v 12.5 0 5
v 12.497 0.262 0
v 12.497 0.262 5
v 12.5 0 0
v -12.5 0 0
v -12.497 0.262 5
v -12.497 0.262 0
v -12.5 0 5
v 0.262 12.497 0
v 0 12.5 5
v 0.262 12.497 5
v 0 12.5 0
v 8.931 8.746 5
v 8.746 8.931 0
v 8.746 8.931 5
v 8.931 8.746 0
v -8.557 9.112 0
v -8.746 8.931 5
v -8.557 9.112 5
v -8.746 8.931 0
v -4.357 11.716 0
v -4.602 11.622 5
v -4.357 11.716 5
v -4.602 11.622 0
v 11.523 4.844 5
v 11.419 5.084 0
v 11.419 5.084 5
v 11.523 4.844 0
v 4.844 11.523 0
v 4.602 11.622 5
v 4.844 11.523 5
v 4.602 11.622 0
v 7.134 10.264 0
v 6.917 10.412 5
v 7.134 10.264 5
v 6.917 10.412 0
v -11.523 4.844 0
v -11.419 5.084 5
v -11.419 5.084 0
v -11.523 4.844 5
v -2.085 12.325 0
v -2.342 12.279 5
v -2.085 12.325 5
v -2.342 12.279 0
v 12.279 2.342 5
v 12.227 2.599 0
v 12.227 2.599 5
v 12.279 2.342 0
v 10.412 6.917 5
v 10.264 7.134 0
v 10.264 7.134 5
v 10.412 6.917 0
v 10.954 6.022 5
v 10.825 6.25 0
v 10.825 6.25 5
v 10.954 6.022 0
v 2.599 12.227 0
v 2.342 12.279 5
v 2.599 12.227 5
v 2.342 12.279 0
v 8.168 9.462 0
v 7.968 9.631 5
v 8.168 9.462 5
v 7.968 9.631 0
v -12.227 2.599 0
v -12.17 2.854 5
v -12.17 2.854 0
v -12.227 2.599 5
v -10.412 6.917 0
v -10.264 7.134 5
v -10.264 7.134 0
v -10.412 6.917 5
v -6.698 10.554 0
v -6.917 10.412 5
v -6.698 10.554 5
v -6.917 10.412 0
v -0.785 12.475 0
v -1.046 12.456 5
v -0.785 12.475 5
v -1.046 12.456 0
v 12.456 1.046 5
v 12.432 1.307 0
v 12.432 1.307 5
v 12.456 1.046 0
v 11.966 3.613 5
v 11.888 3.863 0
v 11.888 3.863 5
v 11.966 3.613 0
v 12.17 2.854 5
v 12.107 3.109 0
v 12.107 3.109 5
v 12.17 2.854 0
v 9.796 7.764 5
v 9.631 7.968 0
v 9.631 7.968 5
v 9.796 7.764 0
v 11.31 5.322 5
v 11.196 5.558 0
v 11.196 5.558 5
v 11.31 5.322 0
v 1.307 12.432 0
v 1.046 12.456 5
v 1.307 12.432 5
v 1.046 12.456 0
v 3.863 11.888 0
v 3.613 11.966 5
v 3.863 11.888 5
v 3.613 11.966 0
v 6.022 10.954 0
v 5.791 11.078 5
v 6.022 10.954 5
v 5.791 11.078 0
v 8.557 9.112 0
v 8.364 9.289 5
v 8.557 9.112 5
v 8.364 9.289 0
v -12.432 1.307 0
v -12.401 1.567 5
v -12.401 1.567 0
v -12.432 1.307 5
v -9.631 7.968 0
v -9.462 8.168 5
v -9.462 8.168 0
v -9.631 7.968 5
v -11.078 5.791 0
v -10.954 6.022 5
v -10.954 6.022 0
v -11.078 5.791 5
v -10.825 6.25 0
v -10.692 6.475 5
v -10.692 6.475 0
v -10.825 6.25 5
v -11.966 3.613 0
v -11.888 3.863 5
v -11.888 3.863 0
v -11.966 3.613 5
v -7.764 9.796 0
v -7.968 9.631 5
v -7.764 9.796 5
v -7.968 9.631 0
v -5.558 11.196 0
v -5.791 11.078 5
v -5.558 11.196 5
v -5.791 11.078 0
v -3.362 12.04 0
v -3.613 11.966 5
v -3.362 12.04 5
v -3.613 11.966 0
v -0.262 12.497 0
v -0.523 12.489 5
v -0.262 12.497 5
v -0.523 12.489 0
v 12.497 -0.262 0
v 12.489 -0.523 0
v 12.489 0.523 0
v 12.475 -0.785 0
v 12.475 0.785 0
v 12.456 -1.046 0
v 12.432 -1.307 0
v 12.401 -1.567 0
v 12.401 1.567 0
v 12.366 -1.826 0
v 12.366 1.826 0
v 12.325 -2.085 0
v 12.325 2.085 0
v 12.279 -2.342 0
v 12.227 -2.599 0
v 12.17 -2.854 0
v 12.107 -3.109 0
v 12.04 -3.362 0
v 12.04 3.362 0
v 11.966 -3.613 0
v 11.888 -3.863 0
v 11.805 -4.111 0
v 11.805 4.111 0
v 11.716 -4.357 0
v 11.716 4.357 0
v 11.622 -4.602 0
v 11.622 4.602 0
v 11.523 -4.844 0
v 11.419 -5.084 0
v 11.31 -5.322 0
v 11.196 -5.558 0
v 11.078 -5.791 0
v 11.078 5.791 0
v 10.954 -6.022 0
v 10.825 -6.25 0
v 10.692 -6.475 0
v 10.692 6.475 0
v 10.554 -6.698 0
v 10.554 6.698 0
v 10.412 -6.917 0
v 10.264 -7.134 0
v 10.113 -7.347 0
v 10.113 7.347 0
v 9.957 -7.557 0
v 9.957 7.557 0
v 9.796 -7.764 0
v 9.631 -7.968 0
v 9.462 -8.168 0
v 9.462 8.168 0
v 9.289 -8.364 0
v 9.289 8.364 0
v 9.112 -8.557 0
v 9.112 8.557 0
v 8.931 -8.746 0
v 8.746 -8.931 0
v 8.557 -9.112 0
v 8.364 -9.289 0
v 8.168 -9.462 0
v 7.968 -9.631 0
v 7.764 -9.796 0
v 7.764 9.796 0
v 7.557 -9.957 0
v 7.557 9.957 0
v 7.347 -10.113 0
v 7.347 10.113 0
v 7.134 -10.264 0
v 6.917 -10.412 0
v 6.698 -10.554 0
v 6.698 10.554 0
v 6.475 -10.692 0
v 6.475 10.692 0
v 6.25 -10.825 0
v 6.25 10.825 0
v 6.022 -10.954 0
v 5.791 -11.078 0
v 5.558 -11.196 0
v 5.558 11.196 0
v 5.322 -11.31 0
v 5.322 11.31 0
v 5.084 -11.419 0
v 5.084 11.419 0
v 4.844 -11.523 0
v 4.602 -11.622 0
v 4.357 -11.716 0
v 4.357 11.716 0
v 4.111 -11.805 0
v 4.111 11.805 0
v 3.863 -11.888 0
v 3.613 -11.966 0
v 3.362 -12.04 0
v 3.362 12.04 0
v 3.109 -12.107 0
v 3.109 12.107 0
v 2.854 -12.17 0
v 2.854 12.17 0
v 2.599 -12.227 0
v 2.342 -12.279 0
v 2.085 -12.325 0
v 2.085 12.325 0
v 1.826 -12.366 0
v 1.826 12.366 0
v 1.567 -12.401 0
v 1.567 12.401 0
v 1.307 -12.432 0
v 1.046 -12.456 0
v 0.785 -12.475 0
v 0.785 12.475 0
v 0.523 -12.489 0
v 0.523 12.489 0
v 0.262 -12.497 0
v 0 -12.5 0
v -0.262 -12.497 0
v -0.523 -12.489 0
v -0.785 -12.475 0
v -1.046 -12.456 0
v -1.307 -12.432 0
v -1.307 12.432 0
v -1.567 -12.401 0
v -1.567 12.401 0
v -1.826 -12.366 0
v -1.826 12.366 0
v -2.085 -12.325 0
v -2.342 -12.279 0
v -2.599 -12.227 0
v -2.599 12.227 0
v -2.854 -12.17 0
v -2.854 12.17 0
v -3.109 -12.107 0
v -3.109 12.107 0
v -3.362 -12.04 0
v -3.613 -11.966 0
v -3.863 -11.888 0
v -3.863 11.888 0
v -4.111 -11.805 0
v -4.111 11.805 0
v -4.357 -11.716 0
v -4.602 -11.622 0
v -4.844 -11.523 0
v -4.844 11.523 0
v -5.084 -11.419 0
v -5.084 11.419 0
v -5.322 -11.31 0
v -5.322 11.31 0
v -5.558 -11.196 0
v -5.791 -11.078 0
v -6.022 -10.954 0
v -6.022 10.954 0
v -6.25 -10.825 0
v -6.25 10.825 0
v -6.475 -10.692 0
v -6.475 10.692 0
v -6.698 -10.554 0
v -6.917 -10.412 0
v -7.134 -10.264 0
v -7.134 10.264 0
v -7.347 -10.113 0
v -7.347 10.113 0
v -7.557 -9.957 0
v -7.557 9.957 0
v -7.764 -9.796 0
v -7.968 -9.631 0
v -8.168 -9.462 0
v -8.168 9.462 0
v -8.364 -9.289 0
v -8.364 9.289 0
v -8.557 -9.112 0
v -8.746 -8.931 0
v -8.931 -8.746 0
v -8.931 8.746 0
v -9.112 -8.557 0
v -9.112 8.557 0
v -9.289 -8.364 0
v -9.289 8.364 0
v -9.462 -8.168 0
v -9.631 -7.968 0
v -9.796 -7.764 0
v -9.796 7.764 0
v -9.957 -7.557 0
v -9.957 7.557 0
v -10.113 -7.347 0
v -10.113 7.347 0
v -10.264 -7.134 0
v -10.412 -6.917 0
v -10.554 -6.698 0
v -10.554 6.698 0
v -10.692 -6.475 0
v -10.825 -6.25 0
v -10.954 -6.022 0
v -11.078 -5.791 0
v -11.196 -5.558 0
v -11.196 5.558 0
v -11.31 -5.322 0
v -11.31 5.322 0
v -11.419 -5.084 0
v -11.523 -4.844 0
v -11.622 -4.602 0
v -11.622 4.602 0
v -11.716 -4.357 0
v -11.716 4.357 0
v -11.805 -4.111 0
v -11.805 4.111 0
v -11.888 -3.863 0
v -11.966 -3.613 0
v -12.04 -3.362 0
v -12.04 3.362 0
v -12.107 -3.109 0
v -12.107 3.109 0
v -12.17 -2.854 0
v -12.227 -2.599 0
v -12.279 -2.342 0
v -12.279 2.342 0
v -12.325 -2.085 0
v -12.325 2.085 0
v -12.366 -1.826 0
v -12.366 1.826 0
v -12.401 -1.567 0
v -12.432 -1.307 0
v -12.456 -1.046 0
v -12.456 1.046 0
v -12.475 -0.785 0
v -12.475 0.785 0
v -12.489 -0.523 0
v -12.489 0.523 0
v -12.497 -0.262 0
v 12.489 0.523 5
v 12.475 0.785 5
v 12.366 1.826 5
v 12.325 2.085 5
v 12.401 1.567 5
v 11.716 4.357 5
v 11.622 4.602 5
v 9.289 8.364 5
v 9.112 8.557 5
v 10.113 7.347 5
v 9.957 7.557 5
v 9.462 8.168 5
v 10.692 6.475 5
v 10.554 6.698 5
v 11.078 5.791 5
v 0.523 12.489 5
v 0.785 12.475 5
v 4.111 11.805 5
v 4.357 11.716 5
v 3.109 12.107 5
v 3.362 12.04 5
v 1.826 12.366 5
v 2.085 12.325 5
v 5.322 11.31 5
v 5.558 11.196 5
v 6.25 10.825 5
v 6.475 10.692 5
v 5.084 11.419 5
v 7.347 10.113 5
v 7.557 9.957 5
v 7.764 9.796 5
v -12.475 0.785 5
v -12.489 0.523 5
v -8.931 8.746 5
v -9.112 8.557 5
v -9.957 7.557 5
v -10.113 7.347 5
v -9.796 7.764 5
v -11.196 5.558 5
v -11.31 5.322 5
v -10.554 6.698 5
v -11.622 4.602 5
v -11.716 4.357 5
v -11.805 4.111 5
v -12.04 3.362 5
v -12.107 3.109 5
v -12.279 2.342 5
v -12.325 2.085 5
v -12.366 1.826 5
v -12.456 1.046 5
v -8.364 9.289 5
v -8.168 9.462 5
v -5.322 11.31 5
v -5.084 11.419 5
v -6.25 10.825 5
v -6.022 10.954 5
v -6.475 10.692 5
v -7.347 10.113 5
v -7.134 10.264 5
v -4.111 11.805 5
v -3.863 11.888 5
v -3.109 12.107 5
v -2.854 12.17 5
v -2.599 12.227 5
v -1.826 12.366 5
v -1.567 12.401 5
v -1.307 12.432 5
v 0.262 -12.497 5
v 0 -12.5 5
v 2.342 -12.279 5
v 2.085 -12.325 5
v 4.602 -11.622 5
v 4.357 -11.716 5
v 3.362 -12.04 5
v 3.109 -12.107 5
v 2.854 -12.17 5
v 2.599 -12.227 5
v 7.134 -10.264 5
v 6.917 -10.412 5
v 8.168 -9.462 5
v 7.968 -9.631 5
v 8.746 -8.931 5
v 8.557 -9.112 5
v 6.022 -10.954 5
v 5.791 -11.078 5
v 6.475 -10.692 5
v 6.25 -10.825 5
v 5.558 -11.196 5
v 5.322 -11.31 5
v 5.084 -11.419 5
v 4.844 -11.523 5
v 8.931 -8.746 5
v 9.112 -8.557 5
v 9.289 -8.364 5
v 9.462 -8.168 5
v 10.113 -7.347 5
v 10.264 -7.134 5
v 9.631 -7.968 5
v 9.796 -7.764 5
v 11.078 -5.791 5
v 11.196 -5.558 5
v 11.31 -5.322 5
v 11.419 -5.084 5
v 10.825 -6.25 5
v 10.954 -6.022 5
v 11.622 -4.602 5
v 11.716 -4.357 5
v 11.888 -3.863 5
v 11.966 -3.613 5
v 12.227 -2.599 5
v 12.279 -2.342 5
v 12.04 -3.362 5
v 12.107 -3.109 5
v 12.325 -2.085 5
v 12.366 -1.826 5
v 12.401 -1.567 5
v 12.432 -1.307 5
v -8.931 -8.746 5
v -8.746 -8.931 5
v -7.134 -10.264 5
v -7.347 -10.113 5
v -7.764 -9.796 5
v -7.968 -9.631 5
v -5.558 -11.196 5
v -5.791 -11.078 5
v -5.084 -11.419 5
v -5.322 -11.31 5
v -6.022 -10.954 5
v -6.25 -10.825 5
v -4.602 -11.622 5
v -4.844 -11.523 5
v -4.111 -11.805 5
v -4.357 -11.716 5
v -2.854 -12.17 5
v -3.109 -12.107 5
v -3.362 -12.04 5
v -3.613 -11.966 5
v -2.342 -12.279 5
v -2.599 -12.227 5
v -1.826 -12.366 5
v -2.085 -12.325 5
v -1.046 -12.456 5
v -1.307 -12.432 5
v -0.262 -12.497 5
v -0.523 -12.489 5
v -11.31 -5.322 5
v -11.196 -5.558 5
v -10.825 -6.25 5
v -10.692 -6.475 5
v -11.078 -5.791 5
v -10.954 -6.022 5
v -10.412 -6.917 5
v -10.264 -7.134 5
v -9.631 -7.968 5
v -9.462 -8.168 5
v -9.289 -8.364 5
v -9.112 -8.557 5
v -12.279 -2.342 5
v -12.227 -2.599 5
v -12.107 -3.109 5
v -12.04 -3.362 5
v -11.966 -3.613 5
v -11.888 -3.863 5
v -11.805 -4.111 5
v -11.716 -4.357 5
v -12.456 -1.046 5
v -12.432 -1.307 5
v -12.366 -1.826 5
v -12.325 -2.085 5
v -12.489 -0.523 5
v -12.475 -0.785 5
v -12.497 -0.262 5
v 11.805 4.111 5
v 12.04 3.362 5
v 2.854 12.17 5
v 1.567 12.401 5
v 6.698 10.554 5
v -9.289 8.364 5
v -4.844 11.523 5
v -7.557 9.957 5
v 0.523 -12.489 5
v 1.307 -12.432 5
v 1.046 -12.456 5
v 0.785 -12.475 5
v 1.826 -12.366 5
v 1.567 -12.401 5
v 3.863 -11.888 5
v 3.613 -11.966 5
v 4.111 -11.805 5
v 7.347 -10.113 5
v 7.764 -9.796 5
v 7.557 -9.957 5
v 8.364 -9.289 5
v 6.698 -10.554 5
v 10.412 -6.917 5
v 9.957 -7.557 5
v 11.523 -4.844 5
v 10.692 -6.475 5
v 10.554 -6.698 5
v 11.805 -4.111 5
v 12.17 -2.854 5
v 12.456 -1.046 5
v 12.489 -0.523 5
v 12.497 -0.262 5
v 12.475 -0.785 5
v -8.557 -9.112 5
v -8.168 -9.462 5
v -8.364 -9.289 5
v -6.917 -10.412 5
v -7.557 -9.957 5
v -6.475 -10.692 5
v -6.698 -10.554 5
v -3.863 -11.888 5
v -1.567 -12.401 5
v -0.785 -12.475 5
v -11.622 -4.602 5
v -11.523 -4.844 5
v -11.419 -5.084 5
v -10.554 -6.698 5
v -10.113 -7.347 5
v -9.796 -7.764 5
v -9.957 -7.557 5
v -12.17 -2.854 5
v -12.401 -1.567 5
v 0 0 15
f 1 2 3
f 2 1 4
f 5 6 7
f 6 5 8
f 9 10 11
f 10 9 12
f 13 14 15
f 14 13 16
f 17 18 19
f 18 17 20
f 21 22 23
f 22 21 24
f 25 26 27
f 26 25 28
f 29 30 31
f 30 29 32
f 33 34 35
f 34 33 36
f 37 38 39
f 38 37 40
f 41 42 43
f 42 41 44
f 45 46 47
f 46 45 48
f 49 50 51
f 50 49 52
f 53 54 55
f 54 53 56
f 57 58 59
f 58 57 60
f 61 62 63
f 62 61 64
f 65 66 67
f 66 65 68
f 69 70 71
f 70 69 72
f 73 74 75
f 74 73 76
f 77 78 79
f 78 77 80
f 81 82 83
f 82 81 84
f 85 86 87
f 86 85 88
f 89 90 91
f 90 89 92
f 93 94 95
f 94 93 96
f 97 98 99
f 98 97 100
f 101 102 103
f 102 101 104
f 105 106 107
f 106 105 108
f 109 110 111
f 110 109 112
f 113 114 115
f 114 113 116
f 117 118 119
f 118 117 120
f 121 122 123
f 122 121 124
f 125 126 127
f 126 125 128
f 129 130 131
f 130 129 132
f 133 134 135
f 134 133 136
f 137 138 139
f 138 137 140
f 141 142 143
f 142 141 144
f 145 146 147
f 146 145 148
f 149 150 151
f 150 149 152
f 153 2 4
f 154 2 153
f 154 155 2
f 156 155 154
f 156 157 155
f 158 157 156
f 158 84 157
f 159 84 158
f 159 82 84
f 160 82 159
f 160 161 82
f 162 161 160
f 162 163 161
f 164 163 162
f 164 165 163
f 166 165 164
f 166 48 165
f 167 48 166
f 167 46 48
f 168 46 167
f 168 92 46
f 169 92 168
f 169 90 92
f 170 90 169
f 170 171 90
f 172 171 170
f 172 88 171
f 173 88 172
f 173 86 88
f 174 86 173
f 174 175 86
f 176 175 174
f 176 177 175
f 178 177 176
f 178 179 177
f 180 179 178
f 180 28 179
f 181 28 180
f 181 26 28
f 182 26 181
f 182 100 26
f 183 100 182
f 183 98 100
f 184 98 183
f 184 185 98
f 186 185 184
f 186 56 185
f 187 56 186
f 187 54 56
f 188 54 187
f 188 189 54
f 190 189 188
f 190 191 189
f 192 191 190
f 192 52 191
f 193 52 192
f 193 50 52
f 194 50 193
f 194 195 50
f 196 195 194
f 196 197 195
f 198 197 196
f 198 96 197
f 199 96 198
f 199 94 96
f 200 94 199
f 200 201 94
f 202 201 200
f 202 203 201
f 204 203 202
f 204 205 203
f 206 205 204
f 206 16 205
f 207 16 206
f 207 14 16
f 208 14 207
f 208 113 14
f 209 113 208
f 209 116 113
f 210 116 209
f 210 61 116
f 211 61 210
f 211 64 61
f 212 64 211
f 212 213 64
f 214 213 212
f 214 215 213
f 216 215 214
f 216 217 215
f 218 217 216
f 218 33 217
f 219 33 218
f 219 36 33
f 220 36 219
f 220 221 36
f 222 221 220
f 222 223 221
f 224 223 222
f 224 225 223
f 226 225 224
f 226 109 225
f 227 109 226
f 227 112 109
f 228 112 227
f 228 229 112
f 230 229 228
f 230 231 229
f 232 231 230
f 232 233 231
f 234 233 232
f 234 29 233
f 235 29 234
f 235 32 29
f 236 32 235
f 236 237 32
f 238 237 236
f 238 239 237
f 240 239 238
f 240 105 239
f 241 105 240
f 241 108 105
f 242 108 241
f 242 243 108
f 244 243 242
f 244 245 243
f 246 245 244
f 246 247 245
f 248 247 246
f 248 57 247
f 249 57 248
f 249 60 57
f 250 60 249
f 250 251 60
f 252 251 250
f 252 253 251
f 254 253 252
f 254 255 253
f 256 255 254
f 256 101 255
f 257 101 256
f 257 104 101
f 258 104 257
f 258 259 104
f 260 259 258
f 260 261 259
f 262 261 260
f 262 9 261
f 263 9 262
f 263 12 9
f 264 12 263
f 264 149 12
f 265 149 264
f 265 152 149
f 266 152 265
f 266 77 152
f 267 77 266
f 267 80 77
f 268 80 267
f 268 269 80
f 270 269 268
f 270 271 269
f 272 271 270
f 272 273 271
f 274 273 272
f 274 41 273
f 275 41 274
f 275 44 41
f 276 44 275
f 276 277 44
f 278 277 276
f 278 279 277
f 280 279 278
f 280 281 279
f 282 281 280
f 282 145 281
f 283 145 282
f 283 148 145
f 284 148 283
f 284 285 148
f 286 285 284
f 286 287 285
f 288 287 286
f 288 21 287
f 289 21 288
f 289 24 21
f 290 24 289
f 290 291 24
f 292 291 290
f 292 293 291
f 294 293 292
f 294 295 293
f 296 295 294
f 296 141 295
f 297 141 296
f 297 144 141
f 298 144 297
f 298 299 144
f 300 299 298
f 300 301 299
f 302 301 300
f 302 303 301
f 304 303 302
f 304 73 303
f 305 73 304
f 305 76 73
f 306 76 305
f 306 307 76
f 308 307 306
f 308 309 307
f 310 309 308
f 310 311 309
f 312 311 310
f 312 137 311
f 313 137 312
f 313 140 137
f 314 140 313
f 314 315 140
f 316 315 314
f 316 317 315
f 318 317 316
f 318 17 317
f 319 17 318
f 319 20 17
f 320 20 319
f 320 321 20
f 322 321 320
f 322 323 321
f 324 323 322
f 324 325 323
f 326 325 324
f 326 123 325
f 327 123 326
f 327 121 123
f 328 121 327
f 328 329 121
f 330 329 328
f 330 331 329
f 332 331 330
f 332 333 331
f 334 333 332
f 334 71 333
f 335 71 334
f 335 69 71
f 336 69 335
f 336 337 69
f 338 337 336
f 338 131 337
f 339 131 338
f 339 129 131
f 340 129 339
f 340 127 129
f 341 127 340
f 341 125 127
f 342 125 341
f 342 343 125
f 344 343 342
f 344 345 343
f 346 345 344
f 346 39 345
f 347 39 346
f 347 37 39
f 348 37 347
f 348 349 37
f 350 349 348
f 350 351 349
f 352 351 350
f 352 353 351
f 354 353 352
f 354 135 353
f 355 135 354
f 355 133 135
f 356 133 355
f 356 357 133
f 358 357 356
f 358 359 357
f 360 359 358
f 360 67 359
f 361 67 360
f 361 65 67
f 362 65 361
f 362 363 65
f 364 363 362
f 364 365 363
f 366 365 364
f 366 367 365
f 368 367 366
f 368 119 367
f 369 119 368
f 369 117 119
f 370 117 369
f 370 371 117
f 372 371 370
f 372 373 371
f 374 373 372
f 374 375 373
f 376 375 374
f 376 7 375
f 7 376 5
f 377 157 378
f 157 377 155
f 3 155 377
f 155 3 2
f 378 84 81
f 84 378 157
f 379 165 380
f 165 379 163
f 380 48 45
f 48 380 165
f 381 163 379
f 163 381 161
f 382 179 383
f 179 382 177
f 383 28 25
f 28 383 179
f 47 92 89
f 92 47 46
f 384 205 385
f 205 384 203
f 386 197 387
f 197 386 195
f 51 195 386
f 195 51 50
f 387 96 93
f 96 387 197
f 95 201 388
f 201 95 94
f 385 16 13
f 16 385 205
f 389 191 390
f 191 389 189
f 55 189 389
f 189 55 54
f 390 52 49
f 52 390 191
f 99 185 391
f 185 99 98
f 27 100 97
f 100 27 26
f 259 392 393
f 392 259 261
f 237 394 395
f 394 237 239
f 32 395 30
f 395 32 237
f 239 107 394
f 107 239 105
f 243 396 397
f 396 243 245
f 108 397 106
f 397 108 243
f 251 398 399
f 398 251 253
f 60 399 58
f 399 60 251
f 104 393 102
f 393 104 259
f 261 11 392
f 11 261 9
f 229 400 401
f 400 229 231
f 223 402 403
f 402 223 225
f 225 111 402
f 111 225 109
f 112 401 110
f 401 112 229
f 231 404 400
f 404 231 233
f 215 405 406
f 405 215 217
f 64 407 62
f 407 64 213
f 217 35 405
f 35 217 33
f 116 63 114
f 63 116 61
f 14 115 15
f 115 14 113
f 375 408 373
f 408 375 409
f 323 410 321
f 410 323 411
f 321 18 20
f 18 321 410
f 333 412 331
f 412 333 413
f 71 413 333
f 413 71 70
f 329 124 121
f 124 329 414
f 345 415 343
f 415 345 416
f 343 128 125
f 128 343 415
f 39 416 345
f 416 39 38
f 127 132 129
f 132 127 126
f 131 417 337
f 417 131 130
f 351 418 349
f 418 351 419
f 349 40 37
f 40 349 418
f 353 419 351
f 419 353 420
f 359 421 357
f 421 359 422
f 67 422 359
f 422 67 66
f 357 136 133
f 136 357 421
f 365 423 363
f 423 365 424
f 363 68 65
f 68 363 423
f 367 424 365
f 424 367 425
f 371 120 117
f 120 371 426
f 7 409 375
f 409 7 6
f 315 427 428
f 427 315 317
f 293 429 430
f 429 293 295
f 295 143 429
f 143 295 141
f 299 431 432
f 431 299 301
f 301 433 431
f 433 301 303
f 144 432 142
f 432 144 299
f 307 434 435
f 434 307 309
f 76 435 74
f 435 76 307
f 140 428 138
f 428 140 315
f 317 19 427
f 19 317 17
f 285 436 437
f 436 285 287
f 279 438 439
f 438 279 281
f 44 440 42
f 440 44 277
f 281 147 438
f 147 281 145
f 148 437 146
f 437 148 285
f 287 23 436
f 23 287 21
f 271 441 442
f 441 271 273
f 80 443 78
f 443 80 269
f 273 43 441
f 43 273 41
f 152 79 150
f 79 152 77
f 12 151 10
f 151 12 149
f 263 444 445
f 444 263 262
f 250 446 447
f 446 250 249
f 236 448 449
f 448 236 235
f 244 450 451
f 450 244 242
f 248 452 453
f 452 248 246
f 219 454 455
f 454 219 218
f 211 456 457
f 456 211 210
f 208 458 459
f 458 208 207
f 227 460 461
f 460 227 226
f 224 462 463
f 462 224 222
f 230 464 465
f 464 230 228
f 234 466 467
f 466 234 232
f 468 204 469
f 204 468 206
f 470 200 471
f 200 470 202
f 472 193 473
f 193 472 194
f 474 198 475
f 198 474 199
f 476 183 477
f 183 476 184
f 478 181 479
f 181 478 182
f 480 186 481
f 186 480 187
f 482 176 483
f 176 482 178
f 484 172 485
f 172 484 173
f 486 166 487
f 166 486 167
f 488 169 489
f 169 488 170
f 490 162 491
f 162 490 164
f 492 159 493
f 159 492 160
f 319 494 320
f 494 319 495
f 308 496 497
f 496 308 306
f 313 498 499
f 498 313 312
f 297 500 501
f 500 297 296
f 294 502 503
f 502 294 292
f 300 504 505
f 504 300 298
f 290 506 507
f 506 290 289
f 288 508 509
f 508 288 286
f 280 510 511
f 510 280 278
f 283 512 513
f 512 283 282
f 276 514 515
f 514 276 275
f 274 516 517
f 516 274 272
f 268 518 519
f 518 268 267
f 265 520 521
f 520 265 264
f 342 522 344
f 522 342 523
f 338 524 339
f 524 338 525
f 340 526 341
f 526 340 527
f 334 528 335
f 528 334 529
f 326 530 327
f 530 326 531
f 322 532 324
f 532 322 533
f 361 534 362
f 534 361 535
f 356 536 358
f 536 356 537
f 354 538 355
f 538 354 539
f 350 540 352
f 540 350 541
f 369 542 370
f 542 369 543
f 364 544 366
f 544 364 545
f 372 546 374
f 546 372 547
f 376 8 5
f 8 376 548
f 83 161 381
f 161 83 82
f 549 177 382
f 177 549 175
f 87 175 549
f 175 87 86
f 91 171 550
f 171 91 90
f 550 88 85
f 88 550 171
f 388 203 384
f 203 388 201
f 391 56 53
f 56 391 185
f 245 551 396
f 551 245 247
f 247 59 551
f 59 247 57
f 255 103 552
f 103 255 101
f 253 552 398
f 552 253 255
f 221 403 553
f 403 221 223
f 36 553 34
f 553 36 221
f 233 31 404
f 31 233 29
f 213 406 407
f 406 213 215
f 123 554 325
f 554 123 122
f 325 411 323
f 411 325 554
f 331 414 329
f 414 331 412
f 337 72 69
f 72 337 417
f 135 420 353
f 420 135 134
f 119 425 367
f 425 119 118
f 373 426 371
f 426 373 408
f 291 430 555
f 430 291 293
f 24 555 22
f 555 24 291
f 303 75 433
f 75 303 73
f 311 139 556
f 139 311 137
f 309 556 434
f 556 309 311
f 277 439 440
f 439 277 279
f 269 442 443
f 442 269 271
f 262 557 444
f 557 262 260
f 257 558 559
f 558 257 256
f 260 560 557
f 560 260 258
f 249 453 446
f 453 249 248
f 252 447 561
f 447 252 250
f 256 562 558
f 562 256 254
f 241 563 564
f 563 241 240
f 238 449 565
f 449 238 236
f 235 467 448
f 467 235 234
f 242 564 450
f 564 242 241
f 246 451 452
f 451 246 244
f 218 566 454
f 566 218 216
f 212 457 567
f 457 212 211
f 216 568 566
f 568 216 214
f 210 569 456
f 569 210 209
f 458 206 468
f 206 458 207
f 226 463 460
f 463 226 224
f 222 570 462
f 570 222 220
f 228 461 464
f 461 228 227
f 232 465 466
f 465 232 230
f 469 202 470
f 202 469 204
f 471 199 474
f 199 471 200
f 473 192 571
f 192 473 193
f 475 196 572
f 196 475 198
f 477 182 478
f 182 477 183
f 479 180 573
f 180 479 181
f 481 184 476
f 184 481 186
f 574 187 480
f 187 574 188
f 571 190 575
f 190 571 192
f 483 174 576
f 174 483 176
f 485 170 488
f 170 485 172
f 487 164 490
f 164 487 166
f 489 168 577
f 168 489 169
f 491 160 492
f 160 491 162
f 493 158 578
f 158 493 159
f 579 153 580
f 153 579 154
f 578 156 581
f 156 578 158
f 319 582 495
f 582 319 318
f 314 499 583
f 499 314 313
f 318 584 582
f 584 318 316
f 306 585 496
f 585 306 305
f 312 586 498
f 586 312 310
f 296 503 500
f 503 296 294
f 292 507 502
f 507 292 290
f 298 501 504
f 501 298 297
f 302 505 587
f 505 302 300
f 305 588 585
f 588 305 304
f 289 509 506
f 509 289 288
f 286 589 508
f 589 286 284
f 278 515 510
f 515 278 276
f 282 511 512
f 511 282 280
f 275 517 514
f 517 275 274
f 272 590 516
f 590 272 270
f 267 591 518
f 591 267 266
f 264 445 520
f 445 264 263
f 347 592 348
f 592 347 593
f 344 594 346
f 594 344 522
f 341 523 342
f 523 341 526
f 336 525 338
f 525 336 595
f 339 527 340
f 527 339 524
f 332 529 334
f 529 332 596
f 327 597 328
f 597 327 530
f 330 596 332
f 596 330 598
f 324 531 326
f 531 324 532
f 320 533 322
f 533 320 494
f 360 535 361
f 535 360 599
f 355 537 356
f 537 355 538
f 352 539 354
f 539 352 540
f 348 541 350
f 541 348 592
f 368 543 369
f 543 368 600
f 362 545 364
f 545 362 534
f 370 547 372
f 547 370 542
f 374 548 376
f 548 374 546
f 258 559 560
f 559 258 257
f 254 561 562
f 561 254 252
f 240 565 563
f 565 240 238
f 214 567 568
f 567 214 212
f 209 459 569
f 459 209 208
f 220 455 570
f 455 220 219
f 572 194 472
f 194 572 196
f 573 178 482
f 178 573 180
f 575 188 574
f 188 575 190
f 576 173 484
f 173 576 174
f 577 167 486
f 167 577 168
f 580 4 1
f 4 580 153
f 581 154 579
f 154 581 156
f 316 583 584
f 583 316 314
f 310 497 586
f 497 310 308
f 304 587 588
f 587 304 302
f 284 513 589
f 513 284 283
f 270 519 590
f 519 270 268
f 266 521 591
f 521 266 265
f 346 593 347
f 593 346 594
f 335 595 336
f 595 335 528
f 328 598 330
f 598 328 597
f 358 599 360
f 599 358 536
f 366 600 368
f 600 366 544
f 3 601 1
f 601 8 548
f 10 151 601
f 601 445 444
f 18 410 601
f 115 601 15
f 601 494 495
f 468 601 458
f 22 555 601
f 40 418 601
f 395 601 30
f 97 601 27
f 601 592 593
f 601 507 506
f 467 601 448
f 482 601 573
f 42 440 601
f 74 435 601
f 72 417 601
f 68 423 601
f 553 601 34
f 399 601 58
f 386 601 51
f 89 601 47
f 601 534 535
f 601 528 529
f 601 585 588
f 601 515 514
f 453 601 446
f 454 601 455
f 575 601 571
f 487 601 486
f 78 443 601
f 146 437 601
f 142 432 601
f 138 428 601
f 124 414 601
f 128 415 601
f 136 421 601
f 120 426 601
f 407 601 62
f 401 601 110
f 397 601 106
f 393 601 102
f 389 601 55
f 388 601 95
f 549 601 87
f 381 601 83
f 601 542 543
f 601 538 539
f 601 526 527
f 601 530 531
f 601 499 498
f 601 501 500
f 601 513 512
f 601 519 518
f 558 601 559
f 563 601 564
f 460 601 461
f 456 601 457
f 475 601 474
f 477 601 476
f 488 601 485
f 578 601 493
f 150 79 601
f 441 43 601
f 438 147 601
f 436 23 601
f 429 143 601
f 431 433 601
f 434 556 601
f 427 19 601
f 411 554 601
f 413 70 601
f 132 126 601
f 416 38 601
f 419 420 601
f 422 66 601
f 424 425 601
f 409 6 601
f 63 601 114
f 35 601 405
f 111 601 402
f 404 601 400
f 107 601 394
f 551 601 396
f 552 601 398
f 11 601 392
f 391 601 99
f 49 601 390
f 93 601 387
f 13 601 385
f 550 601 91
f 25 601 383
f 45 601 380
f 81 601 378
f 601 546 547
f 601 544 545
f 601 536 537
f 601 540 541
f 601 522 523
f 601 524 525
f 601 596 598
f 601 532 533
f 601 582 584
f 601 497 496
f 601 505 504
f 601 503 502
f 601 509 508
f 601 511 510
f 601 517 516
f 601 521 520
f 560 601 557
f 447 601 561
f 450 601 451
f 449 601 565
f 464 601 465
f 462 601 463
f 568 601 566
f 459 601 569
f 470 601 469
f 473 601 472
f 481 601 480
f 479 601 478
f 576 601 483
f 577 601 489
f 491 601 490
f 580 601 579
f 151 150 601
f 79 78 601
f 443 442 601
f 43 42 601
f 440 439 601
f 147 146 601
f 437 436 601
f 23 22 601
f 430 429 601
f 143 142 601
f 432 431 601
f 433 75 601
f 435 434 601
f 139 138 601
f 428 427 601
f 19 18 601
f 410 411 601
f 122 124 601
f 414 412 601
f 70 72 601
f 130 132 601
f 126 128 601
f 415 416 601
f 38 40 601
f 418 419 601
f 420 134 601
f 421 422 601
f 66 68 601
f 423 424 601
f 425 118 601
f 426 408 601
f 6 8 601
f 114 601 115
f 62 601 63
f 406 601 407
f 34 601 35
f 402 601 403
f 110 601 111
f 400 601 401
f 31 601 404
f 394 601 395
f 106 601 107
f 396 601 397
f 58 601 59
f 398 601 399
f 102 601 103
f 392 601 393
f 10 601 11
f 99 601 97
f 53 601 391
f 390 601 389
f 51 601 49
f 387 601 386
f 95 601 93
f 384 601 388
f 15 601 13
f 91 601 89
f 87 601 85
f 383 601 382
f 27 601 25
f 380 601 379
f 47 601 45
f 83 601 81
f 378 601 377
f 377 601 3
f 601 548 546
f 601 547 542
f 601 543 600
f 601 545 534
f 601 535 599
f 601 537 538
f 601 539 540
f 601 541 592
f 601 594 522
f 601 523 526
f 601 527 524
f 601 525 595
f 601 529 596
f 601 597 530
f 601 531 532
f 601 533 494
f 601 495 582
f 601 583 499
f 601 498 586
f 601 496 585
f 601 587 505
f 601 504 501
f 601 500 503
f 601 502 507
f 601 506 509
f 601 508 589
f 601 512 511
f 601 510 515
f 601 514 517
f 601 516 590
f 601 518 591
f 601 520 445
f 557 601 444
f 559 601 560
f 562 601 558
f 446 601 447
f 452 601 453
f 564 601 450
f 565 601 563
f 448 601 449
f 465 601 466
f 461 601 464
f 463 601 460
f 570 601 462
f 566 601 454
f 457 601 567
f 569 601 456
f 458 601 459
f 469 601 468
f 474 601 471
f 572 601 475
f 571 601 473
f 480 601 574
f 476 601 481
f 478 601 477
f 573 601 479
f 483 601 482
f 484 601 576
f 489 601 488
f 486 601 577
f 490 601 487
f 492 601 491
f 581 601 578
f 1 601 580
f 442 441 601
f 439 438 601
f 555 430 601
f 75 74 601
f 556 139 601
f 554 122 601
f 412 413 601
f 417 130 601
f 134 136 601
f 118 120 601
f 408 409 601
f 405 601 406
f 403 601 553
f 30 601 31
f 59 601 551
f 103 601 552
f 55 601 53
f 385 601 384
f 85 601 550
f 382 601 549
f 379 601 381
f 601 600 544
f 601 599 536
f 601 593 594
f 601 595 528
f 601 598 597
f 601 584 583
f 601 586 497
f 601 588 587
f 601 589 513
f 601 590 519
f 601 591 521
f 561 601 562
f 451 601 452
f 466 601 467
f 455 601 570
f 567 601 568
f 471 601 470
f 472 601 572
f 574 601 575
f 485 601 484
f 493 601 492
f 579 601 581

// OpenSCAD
// This is for supporting a model while painting it. Print a handful of them.
$fn = 300;

cylinder(h=5, d=25);
translate([0, 0, 5])
cylinder(h=10, d1=25, d2=0);
